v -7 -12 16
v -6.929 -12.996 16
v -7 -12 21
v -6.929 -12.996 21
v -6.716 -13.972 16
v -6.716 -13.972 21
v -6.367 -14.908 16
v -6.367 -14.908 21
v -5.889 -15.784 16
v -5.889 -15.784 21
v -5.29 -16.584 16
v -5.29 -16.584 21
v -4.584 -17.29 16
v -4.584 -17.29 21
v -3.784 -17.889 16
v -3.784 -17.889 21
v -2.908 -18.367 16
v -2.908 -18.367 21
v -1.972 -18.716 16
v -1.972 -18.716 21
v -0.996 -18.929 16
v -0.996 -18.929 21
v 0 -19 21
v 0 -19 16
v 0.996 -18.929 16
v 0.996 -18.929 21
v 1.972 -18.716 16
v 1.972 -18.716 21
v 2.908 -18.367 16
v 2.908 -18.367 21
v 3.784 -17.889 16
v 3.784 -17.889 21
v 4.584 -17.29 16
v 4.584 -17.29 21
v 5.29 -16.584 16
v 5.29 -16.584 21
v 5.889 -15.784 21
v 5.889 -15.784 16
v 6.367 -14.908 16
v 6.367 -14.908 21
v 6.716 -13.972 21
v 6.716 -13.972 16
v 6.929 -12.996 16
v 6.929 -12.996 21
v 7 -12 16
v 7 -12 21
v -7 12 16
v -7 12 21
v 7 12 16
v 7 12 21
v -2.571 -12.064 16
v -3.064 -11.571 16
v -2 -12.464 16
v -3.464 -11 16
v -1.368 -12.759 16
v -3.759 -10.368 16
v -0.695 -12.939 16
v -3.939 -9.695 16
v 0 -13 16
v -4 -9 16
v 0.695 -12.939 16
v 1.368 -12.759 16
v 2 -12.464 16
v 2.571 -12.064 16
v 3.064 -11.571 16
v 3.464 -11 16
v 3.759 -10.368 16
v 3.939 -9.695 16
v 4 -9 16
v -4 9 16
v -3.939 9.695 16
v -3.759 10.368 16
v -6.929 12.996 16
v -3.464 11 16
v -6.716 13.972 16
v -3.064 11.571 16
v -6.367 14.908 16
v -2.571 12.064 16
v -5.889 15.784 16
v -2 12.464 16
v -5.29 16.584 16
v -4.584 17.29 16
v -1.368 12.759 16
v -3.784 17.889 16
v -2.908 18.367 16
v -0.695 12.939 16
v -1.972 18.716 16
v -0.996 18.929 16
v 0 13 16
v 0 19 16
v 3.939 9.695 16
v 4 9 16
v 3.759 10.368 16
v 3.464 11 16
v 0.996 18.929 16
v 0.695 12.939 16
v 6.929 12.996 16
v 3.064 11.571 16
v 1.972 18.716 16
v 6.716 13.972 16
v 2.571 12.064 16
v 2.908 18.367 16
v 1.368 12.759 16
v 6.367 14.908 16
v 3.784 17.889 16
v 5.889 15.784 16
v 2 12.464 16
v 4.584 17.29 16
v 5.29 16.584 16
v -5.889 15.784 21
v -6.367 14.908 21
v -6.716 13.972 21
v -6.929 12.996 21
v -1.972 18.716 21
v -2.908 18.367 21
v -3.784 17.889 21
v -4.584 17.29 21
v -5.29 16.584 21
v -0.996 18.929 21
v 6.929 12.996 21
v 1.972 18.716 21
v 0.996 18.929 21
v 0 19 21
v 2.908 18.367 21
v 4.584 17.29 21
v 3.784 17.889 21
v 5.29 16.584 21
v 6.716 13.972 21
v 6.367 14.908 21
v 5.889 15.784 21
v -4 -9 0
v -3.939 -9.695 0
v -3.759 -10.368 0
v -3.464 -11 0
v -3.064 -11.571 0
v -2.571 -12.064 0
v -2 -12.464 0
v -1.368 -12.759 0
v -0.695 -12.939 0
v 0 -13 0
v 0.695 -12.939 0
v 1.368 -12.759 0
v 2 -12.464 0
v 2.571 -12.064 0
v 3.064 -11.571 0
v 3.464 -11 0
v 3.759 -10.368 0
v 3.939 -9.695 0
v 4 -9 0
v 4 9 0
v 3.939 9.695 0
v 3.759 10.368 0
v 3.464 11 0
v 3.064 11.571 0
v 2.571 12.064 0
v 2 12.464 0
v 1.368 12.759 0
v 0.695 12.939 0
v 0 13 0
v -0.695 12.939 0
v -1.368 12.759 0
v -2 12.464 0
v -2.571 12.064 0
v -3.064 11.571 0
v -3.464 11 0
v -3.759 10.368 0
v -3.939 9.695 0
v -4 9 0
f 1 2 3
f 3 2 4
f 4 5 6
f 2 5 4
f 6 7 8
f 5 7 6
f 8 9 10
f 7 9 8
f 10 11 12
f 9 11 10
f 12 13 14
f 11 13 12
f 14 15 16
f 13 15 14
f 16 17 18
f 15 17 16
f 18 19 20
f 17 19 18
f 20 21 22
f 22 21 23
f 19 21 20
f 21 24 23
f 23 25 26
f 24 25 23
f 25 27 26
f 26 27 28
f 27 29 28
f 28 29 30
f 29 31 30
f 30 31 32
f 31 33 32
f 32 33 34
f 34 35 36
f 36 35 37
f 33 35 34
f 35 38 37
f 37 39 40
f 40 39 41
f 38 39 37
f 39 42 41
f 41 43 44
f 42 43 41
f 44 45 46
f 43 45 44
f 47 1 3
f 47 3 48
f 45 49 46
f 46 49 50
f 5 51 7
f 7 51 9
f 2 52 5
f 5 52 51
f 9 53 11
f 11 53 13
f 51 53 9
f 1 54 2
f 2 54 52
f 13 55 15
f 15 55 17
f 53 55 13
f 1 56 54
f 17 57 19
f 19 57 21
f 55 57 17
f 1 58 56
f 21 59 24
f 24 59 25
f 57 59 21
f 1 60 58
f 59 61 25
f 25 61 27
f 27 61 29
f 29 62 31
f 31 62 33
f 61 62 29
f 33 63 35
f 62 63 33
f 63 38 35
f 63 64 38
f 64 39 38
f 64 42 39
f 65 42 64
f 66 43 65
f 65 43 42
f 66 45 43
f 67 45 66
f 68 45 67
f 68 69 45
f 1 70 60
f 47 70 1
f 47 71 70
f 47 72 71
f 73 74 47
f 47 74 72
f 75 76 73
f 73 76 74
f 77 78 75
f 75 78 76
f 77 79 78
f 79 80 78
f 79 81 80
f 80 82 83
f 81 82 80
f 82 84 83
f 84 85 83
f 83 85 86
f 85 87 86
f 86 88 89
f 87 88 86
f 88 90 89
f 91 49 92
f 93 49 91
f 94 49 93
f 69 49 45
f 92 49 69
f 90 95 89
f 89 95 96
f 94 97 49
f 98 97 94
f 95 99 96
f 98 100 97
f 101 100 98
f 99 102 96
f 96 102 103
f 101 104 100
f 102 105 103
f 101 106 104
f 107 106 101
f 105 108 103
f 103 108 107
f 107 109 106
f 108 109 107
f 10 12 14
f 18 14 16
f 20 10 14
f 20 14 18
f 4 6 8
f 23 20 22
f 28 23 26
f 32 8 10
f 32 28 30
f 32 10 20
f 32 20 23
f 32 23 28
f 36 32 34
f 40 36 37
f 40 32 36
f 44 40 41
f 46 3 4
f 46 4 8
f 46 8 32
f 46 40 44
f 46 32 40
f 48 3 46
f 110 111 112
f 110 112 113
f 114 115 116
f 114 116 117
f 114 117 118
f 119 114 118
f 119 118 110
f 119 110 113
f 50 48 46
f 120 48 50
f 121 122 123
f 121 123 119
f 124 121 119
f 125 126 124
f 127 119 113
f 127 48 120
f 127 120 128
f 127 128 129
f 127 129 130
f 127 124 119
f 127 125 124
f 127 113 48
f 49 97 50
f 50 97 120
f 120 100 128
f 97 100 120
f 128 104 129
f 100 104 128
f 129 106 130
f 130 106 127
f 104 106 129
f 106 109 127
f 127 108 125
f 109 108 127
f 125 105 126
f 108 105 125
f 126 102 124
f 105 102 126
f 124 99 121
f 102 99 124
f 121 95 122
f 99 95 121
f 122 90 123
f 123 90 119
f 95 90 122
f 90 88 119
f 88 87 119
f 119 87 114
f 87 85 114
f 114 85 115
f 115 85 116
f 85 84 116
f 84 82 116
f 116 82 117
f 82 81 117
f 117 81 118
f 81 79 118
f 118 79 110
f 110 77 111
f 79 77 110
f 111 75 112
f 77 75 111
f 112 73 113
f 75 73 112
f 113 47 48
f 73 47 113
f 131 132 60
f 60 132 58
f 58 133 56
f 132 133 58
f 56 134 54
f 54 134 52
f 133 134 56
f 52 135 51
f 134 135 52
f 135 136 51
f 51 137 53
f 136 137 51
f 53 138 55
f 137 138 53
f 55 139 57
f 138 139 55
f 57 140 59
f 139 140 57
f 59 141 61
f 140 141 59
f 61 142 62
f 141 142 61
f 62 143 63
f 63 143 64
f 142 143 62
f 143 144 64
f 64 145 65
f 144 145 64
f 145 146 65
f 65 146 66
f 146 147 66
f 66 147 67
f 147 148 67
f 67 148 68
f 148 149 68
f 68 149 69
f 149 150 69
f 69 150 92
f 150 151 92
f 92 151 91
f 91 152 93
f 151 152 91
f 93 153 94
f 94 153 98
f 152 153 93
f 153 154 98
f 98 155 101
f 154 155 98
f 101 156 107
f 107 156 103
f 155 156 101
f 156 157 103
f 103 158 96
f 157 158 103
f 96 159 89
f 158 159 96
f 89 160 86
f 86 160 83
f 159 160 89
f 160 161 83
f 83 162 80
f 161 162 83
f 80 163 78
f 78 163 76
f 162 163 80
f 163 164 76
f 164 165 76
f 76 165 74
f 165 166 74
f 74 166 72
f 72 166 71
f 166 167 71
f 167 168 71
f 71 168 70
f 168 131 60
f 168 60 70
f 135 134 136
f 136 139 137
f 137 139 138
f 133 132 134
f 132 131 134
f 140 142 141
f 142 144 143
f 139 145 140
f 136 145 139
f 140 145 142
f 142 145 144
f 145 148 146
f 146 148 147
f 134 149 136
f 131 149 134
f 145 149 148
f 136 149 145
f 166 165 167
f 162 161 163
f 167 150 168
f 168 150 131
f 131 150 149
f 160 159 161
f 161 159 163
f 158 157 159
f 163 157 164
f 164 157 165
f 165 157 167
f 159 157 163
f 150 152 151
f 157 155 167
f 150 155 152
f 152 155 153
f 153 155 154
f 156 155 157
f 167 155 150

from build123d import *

# Parameters (mm, degrees)
EXTRUDE001_DEPTH = 5
EXTRUDE_DEPTH    = 16


with BuildPart() as cap_top_extrude:
    # Sketch006 → Extrude001 (new body)
    with BuildSketch(Plane.XY):
        with BuildLine():
            ThreePointArc((-7, -12), (0, -19), (7, -12))
            Line((7, -12), (7, 12))
            ThreePointArc((7, 12), (0, 19), (-7, 12))
            Line((-7, -12), (-7, 12))
        make_face()
    extrude(amount=EXTRUDE001_DEPTH)


with BuildPart() as cap_top_extrude_1:
    # Extrude001 placement: moved
    add(cap_top_extrude.part.moved(Location((0, 0, 16))))


with BuildPart() as cap_fuse:
    # Sketch005 → Extrude (new body)
    with BuildSketch(Plane.XY):
        with BuildLine():
            ThreePointArc((-4, -9), (0, -13), (4, -9))
            Line((4, -9), (4, 9))
            ThreePointArc((4, 9), (0, 13), (-4, 9))
            Line((-4, -9), (-4, 9))
        make_face()
    extrude(amount=EXTRUDE_DEPTH)

    # Fusion: union cap_top_extrude
    add(cap_top_extrude_1.part)


solid = cap_fuse.part
